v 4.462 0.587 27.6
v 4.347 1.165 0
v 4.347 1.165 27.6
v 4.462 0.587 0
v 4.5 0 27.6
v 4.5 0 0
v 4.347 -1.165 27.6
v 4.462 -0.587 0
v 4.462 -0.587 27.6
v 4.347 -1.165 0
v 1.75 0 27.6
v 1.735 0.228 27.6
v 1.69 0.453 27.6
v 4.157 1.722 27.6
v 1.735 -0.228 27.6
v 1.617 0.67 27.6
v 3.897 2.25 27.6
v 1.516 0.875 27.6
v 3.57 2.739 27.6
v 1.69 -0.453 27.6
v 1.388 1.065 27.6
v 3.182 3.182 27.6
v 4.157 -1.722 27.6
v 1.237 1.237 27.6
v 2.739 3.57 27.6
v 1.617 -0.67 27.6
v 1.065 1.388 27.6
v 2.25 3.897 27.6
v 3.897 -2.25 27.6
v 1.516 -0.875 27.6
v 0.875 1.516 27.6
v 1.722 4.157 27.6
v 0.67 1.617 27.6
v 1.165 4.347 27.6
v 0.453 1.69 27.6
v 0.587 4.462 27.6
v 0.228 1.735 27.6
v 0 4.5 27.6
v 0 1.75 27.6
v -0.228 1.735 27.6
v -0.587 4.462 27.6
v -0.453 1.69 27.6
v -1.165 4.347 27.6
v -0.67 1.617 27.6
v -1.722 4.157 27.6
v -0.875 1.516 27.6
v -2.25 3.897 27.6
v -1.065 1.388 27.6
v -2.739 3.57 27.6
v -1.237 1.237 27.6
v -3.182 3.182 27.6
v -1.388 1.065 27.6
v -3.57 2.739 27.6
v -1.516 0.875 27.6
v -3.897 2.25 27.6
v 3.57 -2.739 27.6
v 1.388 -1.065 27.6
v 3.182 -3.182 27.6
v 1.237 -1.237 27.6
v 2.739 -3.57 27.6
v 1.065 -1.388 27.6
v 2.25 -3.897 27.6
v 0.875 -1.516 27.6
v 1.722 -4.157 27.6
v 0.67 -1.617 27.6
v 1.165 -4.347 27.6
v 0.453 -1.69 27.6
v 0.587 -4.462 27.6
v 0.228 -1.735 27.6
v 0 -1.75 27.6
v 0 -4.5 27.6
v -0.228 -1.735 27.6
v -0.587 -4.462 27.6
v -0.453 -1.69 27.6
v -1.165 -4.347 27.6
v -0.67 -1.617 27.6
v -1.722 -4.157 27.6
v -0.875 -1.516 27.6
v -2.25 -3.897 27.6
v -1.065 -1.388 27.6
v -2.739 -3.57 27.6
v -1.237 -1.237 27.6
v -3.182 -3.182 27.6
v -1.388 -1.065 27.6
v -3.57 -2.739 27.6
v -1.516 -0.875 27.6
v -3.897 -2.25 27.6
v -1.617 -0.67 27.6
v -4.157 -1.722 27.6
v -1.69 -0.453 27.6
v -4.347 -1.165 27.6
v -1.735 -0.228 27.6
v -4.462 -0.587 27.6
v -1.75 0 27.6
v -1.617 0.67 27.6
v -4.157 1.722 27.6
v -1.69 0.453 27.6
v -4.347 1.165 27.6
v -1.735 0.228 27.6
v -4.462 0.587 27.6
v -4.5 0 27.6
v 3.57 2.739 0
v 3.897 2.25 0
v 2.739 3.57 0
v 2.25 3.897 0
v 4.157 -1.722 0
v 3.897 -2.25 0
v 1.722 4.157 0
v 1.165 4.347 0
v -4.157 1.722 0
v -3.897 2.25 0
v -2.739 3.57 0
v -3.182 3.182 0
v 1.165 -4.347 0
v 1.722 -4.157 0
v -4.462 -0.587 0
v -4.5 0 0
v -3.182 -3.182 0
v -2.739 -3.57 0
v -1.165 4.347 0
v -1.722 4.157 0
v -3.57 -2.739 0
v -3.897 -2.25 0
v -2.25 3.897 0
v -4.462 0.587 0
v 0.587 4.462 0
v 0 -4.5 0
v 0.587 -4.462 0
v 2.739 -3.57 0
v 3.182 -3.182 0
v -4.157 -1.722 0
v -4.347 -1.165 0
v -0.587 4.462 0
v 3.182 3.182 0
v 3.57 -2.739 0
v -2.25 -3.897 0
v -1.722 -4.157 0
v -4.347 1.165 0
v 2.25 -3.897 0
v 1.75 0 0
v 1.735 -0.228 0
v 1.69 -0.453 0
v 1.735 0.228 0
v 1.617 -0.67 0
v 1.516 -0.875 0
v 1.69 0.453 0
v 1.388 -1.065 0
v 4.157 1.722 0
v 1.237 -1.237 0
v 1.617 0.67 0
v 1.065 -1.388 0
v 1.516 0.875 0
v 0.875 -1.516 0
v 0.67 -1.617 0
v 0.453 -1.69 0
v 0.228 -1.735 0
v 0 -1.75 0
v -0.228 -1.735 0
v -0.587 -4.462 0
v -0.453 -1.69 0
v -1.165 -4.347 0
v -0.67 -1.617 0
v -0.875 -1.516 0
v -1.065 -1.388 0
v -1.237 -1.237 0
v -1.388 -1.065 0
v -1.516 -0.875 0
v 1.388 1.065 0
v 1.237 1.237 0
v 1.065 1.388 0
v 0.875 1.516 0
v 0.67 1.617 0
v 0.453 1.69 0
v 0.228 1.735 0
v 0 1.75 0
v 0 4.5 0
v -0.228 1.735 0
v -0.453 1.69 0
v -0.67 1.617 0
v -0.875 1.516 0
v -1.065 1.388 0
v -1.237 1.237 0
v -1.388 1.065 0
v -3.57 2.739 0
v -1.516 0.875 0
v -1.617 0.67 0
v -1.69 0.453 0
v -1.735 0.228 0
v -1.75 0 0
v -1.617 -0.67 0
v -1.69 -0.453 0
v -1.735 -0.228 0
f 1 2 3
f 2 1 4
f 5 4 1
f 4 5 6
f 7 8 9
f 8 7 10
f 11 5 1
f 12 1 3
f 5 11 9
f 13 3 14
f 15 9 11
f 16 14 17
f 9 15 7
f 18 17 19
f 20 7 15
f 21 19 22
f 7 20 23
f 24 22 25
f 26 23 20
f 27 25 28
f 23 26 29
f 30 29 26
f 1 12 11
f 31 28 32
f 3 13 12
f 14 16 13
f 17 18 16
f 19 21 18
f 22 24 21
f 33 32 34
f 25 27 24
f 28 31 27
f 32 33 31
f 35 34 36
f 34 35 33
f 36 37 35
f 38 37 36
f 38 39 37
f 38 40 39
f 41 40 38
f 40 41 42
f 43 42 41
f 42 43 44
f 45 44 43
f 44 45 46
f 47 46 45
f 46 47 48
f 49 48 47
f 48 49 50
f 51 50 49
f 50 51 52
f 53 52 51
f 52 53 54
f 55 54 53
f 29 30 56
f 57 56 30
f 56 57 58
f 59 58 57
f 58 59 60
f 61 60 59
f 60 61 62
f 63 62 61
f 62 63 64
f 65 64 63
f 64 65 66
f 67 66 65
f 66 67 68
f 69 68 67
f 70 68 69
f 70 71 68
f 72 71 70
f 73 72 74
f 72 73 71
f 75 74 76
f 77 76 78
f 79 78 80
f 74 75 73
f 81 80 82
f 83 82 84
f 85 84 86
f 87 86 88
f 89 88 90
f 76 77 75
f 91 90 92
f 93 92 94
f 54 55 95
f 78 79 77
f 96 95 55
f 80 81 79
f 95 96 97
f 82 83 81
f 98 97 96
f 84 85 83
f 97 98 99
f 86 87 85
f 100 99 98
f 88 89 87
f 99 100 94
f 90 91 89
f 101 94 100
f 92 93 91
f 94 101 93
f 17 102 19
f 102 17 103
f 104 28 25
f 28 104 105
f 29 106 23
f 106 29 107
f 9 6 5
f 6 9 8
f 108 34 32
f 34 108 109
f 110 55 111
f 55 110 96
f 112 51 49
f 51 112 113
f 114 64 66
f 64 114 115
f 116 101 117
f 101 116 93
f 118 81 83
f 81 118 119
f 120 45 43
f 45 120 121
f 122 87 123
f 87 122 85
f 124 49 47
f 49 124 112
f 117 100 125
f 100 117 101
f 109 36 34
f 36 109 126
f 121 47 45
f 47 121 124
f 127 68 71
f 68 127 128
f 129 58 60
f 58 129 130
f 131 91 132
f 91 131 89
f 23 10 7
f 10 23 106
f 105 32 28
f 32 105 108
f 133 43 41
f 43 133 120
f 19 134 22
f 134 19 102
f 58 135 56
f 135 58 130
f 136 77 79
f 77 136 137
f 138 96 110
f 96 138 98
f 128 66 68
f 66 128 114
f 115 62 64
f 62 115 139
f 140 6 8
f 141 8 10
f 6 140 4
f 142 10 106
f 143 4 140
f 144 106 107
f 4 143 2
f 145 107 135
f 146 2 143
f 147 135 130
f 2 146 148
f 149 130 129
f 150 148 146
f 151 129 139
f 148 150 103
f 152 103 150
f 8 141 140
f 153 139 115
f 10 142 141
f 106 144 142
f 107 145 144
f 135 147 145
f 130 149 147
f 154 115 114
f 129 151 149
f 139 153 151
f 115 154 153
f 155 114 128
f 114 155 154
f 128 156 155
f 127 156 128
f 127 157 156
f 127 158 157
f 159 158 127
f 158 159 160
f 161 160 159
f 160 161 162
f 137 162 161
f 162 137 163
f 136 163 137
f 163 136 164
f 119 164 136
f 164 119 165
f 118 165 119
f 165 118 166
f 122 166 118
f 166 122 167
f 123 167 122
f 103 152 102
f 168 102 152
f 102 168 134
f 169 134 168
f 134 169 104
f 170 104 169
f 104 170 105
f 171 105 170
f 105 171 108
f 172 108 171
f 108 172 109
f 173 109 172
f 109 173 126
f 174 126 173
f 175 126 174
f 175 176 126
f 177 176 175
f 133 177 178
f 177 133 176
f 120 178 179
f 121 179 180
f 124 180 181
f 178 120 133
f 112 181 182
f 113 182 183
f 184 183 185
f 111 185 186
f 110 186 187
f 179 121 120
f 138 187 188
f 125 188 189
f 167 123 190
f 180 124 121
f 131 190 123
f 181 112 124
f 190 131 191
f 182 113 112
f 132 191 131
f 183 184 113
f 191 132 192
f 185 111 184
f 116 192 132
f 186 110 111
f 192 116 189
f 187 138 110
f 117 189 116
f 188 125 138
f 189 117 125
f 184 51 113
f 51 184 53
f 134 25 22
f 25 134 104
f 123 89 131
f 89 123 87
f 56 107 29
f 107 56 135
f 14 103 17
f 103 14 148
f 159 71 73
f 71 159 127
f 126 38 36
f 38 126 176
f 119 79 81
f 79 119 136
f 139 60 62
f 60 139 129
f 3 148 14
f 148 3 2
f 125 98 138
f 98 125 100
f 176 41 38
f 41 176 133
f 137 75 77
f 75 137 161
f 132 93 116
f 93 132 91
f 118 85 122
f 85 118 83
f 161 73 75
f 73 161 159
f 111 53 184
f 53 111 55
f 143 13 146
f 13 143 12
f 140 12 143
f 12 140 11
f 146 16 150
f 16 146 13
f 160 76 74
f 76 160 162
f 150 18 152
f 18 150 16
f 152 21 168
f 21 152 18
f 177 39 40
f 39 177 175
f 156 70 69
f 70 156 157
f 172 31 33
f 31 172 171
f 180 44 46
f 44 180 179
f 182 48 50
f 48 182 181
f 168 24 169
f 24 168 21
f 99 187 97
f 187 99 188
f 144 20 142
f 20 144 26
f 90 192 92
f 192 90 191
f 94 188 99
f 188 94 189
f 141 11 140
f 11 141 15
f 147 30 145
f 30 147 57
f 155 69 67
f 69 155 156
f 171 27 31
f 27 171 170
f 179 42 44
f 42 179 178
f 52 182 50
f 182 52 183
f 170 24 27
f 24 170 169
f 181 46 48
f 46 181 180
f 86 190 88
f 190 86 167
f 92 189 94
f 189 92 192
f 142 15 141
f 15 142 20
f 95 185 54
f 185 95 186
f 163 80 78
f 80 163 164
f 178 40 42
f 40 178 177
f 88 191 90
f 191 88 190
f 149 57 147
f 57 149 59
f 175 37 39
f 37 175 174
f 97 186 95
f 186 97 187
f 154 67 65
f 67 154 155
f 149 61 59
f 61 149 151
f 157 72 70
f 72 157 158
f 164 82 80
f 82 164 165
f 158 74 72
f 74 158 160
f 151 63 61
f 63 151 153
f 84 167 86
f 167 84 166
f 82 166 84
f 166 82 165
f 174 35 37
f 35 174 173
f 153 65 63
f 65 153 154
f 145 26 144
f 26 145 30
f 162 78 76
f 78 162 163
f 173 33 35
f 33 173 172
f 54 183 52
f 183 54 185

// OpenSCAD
// file: parameters.scad
// =============================================================================
// Gen-BG — nightly 2026-10-04 (physics_scorer, honest magpylib watts)
// 8-pole / 9-coil dual rotor (best winding factor 0.945) pushed out to RL 46 with 9.9 mm tall copper on steel-seated magnets; 3 smaller coils per phase and less wire (257 m) than 6-coil.
// Clocking 0 deg (magnets N facing S) + D-flat keyed bore + index notch + flip-symmetric hole map.
// Windable 2-piece bobbin; turns = physics_scorer turns_fit; copper only between flanges.
// Steel back-iron: two 3.0 mm mild-steel discs (steel_backiron_disc.dxf); magnets sit ON the steel
// (through-pockets) -> score with --back-iron.
// =============================================================================
topology            = "dual_rotor";

// --- Wire / winding (physics_scorer winding-fit) -------------------------------
wire_awg            = 26;
wire_od             = 0.45;     // insulated OD mm (bare 0.405)
fill_realistic      = 0.60;     // insulated-wire area / window, hand-wound layered
turns               = 364;       // = physics_scorer turns_fit (do NOT raise)
coil_former_type    = "bobbin";
coil_core_inset     = 9.75;     // radial copper build: hub = copper boundary inset by this
wind_build_axial    = 0.0;      // nothing proud of the flanges
wind_build_radial   = 0.0;

// --- Bobbin (base + lid) ---------------------------------------------------------
coil_id_r           = 30.00;    // copper boundary sector
coil_od_r           = 62.00;
span_deg            = 32.93;    // = pitch - 2*asin((wall+0.85)/coil_id_r) -> >=1.2 mm stator web
former_web          = 9.90;     // copper height between flanges (TALL copper: steel keeps Bz up)
flange_t            = 0.80;     // >= 0.8 mm FDM wall rule (tall winds push on the flanges)
wall                = 1.00;     // flange lip beyond copper
former_bare_h       = former_web + 2 * flange_t;
coil_envelope_h     = former_bare_h + 2 * wind_build_axial;
tab_w               = 7.0;
tab_len             = 7.0;
tab_h               = former_bare_h / 2;
pin_d               = 1.9;      // 1.75 mm filament locating pin
coil_mount_r        = coil_od_r + 0.2 + 4.0;
lead_y              = 1.6;
lead_slot_w         = 0.9;
lead_groove_d       = 0.6;

// --- Gap -------------------------------------------------------------------------
run_clear           = 0.50;     // rotor face -> flange
gap_spacer_h        = run_clear + wind_build_axial;
m2m                 = coil_envelope_h + 2 * run_clear;   // rotor face to rotor face (= gap_sleeve length)

// --- Stator ----------------------------------------------------------------------
coil_stations       = 9;
bay_clear           = 0.25;
stator_thick        = former_bare_h;                        // bobbins flush both faces
stator_od           = 157.0;
shaft_clear_stator  = 14.0;     // stator is static; gap sleeve OD 12 spins inside

// --- Rotor(s) --------------------------------------------------------------------
magnet_Br           = 1.43;     // N52
magnet_d_large      = 20.0;
magnet_h_large      = 5.0;      // one O20x5 per pocket
magnet_h_small      = 5.0;      // one O5x5 per pocket
halbach_magnetisation = "diametric"; // O5x5 assist magnets MUST be DIAMETRICALLY magnetised (tangential)
rotor_b_same_axis   = true;     // same-index magnets share one axis: N faces S across the gap
large_pocket_d      = 20.3;
small_pocket_d      = 5.3;
pocket_h            = 5.10;     // THROUGH the carrier: magnet back face sits on the steel disc
large_n             = 8;
R_large             = 46.0;
R_small_inner       = 32.0;
R_small_mid         = 46.0;
R_small_outer       = 63.0;
small_r_list        = [R_small_inner, R_small_mid, R_small_outer];   // O5 pockets between poles
carrier_od          = 135.0;
carrier_thick       = pocket_h;
hub_h               = 10.0;
hub_od              = 24.0;     // slim hub so the M4 brace rods fit at R~18 inside the coil ring
hub_insert_d        = 4.0;      // M3 heat-set insert, radial, bears on the D-flat
rotor_b_offset_deg  = 0.0;      // CLOCKING: magnets directly opposite
shaft_key           = "dflat";
dflat_depth         = 0.5;      // 8 mm shaft with 0.5 mm flat (7.5 across flat)
index_notch_d       = 3.0;

// --- Steel back-iron (buyable laser-cut) -------------------------------------------
steel_t             = 3.0;      // mild steel thickness (not modelled by the image method; >=3 avoids saturation)
steel_center_hole   = 26.0;     // slips over the rotor hub (OD 24)

// --- Modular MAX interface ----------------------------------------------------------
shaft_bore          = 8.35;
dflat_x             = 4.0 - dflat_depth + (shaft_bore - 8.0) / 2;
bearing_d           = 21.85;
bearing_h           = 7.2;
m3_clear            = 3.5;
bolt_r_inner        = 27.0;     // M3 steel-disc clamp bolts (inside the magnet ring)
bolt_n_inner        = 4;
bolt_inner_angles   = [0, 90, 180, 270];
bolt_r_outer        = 59.0;     // M3 steel-disc clamp bolts (outside the magnet ring)
bolt_outer_angles   = [0, 90, 180, 270];
flange_bolt_r       = 73.5;     // frame rods: OUTSIDE the rotor OD (rotors spin inside them)
flange_bolt_n       = 9;
flange_bolt_offset  = 20.00;    // between coil stations -> never cuts a lead groove/tab
brace_r             = 18.0;
brace_d             = 4.3;      // temporary M4 jack rods (assembly only)
brace_n             = 4;
brace_angles        = [45, 135, 225, 315];          // flip-symmetric

spacer_pad_od       = 14.0;
spacer_pad_id       = m3_clear;
endbell_od          = 157.0;
endbell_thick       = 8.0;
endbell_shaft_clear = 10.0;
collar_h            = 10.0;
standoff_od         = 9.0;
frame_standoff_h    = run_clear + carrier_thick + hub_h + collar_h + 2.0;
sleeve_od           = 12.0;
plate_max_mm        = 410;

$fn = 64;
// main file
// Gen-BG — frame standoff tube between stator and an endbell, on each M3 frame rod (outside rotor OD).
// Print x18. Height = frame_standoff_h (rotor + steel + hub + collar + running clearance).
include <parameters.scad>;
$fn = 48;
difference() {
    cylinder(d=standoff_od, h=frame_standoff_h);
    translate([0, 0, -0.1]) cylinder(d=m3_clear, h=frame_standoff_h + 0.2);
}
